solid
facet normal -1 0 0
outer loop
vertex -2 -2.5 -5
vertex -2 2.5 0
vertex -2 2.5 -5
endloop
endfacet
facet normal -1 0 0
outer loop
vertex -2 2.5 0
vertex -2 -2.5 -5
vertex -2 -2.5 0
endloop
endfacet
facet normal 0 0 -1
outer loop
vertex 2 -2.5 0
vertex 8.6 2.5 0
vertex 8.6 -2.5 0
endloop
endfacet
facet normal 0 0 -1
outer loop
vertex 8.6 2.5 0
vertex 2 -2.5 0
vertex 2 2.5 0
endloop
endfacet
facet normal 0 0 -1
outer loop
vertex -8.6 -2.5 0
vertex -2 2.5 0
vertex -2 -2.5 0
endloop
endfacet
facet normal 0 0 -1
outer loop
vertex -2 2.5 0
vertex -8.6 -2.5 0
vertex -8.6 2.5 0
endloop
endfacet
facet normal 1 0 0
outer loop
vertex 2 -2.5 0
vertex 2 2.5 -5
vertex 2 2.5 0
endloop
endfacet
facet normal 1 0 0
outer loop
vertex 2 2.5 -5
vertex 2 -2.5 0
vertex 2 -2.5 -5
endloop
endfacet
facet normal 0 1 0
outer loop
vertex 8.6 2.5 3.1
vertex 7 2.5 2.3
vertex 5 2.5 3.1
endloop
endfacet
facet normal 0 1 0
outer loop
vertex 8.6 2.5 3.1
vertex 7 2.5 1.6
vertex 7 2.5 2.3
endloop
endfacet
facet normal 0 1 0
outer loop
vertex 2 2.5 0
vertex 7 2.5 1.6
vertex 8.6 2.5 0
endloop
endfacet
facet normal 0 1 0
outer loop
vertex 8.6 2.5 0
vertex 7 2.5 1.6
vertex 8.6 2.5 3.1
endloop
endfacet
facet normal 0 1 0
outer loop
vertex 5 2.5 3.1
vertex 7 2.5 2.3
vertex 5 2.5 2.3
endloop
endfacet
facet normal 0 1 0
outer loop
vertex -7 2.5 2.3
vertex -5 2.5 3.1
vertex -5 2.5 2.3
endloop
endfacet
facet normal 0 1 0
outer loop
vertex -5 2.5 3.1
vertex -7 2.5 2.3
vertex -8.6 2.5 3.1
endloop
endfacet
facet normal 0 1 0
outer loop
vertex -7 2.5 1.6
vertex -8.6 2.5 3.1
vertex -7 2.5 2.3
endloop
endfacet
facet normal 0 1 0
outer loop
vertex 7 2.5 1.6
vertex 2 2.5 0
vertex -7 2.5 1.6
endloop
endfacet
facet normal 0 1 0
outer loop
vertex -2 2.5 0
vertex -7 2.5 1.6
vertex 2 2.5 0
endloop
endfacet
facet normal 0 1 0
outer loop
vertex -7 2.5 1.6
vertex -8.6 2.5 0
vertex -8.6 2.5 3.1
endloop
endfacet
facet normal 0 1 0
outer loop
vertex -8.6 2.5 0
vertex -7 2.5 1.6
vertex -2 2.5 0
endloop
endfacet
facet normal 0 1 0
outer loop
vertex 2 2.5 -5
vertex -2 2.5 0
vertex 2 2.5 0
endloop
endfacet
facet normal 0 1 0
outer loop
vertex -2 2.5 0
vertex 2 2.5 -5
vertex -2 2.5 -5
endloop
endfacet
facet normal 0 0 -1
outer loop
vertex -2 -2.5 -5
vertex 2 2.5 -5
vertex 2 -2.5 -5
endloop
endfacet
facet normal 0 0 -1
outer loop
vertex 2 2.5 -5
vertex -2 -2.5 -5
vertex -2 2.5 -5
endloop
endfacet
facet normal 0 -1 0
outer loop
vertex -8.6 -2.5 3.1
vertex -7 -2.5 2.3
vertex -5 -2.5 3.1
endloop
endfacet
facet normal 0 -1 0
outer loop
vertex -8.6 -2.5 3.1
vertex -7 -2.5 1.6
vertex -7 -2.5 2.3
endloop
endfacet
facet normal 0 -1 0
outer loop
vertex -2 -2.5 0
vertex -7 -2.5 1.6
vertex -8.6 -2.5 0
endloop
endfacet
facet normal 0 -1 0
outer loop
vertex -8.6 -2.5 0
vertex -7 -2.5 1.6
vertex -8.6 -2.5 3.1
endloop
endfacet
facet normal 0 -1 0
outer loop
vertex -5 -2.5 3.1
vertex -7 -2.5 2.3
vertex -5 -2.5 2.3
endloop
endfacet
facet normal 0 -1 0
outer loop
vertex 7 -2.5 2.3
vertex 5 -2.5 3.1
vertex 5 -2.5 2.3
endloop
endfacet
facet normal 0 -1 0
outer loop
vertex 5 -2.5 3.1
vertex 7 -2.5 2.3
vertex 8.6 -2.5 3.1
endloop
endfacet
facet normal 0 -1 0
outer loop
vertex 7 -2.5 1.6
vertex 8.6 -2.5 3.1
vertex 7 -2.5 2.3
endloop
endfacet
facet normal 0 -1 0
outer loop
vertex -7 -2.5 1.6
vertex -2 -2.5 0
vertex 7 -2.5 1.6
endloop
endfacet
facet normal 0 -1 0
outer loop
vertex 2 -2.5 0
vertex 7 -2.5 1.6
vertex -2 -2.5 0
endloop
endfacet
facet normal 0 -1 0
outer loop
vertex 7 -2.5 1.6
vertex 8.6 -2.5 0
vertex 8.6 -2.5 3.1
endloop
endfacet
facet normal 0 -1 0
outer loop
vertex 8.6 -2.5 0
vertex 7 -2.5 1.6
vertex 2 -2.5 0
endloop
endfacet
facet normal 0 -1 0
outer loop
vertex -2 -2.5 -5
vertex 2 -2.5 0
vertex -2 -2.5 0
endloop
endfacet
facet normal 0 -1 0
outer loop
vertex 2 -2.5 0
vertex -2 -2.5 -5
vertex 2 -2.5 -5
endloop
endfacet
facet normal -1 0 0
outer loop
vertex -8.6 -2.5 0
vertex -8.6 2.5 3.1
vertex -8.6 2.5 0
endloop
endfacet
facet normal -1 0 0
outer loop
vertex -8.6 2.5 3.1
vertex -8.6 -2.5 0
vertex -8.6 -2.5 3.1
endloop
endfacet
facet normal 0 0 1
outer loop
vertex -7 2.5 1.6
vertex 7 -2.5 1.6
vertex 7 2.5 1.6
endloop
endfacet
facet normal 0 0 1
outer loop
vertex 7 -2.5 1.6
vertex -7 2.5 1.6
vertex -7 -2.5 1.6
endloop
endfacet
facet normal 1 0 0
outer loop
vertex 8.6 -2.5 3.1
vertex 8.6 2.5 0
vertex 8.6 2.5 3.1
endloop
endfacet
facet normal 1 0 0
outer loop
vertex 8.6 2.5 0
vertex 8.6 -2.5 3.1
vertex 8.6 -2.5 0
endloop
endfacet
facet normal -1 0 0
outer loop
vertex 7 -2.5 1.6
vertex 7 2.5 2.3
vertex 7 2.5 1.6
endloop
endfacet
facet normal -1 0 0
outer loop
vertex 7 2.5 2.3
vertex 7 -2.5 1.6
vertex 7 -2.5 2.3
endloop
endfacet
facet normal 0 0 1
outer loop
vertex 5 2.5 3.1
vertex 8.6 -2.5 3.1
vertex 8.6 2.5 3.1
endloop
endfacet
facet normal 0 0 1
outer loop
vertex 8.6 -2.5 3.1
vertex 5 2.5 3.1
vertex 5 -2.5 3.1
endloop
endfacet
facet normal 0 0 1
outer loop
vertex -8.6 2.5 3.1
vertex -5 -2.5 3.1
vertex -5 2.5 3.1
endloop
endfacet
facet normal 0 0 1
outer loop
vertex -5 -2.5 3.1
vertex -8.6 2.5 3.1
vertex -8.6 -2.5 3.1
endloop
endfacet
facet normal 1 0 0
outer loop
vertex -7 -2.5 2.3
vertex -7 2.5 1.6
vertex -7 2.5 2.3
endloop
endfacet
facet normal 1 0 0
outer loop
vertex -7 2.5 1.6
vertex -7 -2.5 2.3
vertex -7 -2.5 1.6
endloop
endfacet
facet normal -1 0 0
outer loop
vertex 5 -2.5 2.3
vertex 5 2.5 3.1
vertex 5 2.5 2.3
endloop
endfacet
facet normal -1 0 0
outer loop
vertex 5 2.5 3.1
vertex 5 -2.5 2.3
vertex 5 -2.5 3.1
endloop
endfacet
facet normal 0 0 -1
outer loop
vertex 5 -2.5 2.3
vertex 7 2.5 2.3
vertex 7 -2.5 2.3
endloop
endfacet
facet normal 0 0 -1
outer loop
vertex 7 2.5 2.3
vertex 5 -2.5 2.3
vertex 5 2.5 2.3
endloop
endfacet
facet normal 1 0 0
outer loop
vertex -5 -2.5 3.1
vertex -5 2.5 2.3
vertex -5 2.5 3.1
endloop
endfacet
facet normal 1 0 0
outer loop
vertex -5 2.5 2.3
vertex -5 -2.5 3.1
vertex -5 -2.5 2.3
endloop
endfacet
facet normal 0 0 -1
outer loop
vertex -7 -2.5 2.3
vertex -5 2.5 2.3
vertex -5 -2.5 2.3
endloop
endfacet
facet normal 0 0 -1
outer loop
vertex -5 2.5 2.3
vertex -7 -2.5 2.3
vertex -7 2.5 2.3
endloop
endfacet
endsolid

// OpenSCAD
// --- Carrera Go LED Clip (Flach & Offen / Sichtfeld-Style) ---
// Alle Maße in Millimetern (mm). 
// Passt diese Werte an eure exakten Messungen an!

// --- PARAMETER ---
// 1. Der Pin für die Carrera-Schiene
slot_width = 4.0;      // Breite der Rille (Carrera Go ca. 3mm)
slot_depth = 5.0;      // Wie tief der Pin in die Rille ragt
clip_length = 5.0;     // Wie lang der Clip in Fahrtrichtung ist

// 2. Der LED-Streifen (Horizontal liegend)
strip_width_flat = 13.0; // Breite des flach liegenden Streifens (meist 10-12mm)
strip_thickness = 1.0;  // Dicke des Streifens inkl. Klebeband/Chips
// Diese Nase greift *nur* die alleräußerste Kante des Streifens!
snap_lip_width = 2;  // Wie weit die Nase nach innen ragt (sehr fein)

// 3. Stabilität & Toleranz
wall = 1.6;            // Wandstärke der Basisplatte (die auf der Fahrbahn liegt)
gap_clearance = 0.5;   // Minimaler Freiraum zum Streifen für Toleranz

// --- GENERATOR (Völlig neu konstruiert) ---
module led_clip_flat_sichtfeld() {
    union() {
        // 1. Der Pin (Steckt in der Bahn)
        // Zentriert um den Ursprung für Symmetrie
        translate([0, 0, -slot_depth/2])
            cube([slot_width, clip_length, slot_depth], center=true);
            
        // 2. Die flache Basis (Liegt auf der Fahrbahn auf)
        // Muss breiter sein als der Pin und der Streifen, um Stabilität zu geben
        translate([0, 0, wall/2])
            cube([strip_width_flat + 2*wall + 2*gap_clearance, clip_length, wall], center=true);
            
        // 3. Die sehr niedrigen Halterwände (knapp über Streifendicke)
        wall_height = strip_thickness + gap_clearance; // Etwas höher als Dicke für Halt
        
        // Rechte Wand
        translate([(strip_width_flat/2 + gap_clearance + wall/2), 0, wall + wall_height/2])
            cube([wall, clip_length, wall_height], center=true);
            
        // Linke Wand
        translate([-(strip_width_flat/2 + gap_clearance + wall/2), 0, wall + wall_height/2])
            cube([wall, clip_length, wall_height], center=true);
            
        // 4. Die ultra-feinen Halte-Nasen (Klick-Mechanismus oben)
        // Diese greifen nur die alleräußerste PCB-Kante!
        lip_thickness = 0.8;
        
        // Rechte Nase
        translate([(strip_width_flat/2 + gap_clearance - snap_lip_width/2), 0, wall + wall_height - lip_thickness/2])
            cube([snap_lip_width, clip_length, lip_thickness], center=true);
            
        // Linke Nase
        translate([-(strip_width_flat/2 + gap_clearance - snap_lip_width/2), 0, wall + wall_height - lip_thickness/2])
            cube([snap_lip_width, clip_length, lip_thickness], center=true);
    }
}

// Modell rendern
led_clip_flat_sichtfeld();
